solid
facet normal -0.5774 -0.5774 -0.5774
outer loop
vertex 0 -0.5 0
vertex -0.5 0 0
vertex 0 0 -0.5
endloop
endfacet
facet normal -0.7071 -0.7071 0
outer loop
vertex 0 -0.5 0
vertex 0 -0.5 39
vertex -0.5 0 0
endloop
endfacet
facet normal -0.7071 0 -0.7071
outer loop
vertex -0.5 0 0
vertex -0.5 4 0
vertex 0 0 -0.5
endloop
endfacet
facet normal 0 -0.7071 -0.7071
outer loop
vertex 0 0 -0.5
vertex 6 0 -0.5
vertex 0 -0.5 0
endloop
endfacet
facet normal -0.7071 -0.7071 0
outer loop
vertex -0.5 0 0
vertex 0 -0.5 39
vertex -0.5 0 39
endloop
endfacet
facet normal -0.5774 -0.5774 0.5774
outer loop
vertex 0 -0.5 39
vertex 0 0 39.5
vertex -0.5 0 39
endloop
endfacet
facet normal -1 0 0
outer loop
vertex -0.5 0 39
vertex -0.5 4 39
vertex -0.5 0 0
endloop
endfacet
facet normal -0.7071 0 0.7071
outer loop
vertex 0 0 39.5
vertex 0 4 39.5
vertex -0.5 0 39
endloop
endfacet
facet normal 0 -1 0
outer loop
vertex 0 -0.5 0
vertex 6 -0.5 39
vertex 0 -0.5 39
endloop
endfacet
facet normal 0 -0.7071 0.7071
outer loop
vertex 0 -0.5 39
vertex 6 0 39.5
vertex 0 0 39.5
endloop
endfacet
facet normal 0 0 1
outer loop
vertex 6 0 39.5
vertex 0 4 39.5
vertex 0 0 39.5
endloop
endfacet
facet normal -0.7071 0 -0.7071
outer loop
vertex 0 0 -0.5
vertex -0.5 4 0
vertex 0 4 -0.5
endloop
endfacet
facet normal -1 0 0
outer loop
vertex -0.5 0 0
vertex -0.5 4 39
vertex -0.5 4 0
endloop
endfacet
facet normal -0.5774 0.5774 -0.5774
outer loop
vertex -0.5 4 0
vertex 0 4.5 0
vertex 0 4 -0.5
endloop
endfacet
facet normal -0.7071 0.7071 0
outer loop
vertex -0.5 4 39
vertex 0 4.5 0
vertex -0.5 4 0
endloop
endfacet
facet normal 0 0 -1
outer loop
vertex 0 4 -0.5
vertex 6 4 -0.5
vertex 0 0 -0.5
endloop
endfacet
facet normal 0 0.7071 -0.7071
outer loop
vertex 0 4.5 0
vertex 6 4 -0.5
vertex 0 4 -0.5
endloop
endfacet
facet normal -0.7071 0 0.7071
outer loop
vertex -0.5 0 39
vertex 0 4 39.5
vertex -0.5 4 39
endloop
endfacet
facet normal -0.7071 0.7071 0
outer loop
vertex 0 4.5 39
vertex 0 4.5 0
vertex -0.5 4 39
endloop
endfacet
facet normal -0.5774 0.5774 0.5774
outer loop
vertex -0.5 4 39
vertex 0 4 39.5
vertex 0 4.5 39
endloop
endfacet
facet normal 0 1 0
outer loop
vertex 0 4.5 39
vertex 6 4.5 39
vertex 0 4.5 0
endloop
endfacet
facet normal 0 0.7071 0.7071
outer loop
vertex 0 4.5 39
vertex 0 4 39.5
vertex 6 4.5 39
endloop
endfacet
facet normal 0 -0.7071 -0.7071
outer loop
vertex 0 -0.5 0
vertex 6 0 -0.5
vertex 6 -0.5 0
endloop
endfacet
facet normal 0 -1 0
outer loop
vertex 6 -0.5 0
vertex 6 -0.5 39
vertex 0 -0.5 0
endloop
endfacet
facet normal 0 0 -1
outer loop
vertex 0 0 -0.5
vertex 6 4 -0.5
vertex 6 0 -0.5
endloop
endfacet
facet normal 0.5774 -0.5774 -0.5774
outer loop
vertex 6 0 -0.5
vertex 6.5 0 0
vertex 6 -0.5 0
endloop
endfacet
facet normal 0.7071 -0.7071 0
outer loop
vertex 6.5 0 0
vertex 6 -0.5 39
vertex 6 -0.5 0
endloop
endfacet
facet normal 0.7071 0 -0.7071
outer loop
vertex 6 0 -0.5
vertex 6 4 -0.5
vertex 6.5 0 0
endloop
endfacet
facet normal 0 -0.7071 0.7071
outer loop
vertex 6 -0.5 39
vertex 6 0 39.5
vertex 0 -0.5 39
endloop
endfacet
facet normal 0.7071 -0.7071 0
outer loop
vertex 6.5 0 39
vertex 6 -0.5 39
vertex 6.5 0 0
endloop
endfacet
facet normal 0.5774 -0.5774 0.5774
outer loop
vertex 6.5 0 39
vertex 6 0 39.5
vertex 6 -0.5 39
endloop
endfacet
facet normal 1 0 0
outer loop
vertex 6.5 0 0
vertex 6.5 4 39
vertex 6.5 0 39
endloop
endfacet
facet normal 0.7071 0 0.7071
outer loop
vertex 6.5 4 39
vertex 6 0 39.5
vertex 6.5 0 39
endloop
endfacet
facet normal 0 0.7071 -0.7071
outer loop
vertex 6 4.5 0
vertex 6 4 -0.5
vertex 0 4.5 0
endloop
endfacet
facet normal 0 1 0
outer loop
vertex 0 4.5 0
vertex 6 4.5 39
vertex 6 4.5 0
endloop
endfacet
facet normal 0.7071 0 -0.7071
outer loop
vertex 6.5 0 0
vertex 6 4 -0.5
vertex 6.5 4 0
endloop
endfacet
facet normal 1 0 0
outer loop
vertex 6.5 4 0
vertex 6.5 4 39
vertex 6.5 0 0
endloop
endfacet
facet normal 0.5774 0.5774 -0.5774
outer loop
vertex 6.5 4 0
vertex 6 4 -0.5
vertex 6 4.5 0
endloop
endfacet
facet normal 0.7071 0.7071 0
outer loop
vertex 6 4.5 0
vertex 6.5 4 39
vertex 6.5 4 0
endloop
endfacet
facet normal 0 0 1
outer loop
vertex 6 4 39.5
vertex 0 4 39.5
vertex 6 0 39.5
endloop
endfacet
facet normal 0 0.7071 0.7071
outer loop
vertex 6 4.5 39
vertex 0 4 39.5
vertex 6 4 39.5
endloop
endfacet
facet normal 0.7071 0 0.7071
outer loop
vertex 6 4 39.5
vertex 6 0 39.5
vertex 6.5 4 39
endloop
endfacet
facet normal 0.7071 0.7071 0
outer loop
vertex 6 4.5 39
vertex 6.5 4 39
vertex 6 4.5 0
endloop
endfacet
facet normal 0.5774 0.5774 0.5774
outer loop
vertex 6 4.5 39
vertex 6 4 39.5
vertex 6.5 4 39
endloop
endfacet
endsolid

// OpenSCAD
/* Parametric Block
   Default: 7 x 5 x 40 mm
   Tweak the parameters below; everything derives from them. */

/* ---------- Parameters ---------- */

// Width along X (mm)
block_width = 7;

// Depth along Y (mm)
block_depth = 5;

// Height along Z (mm)
block_height = 40;

// Chamfer on all 12 edges (mm, 0 = none)
edge_chamfer = 0.5;

// Corner rounding on vertical edges (mm, 0 = sharp; ignored if edge_chamfer > 0)
corner_radius = 0;

// Resolution for curved surfaces ($fn)
$fn = 64;

/* ---------- Derived helpers ---------- */

// Safe chamfer: clamp to half the smallest dimension
ch = min(edge_chamfer, block_width / 2, block_depth / 2, block_height / 2);

// Safe corner radius
cr = min(corner_radius, block_width / 2, block_depth / 2);

/* ---------- Modules ---------- */

// Octahedron used to generate exact 45-degree chamfers via minkowski
module octahedron(r) {
    polyhedron(
        points = [
            [ r, 0, 0], [-r, 0, 0],
            [ 0, r, 0], [ 0,-r, 0],
            [ 0, 0, r], [ 0, 0,-r]
        ],
        faces = [
            [0, 2, 4], [2, 1, 4], [1, 3, 4], [3, 0, 4],
            [2, 0, 5], [1, 2, 5], [3, 1, 5], [0, 3, 5]
        ]
    );
}

// Block with all 12 edges chamfered by c (corners become small triangles)
module chamfered_block(w, d, h, c) {
    minkowski() {
        cube([w - 2*c, d - 2*c, h - 2*c]);
        octahedron(c);
    }
}

// Block with rounded vertical edges (sharp top/bottom edges)
module rounded_block(w, d, h, r) {
    linear_extrude(height = h)
        offset(r = r)
            offset(delta = -r)
                square([w, d]);
}

/* ---------- Model ---------- */

if (ch > 0) {
    chamfered_block(block_width, block_depth, block_height, ch);
} else if (cr > 0) {
    rounded_block(block_width, block_depth, block_height, cr);
} else {
    cube([block_width, block_depth, block_height]);
}
